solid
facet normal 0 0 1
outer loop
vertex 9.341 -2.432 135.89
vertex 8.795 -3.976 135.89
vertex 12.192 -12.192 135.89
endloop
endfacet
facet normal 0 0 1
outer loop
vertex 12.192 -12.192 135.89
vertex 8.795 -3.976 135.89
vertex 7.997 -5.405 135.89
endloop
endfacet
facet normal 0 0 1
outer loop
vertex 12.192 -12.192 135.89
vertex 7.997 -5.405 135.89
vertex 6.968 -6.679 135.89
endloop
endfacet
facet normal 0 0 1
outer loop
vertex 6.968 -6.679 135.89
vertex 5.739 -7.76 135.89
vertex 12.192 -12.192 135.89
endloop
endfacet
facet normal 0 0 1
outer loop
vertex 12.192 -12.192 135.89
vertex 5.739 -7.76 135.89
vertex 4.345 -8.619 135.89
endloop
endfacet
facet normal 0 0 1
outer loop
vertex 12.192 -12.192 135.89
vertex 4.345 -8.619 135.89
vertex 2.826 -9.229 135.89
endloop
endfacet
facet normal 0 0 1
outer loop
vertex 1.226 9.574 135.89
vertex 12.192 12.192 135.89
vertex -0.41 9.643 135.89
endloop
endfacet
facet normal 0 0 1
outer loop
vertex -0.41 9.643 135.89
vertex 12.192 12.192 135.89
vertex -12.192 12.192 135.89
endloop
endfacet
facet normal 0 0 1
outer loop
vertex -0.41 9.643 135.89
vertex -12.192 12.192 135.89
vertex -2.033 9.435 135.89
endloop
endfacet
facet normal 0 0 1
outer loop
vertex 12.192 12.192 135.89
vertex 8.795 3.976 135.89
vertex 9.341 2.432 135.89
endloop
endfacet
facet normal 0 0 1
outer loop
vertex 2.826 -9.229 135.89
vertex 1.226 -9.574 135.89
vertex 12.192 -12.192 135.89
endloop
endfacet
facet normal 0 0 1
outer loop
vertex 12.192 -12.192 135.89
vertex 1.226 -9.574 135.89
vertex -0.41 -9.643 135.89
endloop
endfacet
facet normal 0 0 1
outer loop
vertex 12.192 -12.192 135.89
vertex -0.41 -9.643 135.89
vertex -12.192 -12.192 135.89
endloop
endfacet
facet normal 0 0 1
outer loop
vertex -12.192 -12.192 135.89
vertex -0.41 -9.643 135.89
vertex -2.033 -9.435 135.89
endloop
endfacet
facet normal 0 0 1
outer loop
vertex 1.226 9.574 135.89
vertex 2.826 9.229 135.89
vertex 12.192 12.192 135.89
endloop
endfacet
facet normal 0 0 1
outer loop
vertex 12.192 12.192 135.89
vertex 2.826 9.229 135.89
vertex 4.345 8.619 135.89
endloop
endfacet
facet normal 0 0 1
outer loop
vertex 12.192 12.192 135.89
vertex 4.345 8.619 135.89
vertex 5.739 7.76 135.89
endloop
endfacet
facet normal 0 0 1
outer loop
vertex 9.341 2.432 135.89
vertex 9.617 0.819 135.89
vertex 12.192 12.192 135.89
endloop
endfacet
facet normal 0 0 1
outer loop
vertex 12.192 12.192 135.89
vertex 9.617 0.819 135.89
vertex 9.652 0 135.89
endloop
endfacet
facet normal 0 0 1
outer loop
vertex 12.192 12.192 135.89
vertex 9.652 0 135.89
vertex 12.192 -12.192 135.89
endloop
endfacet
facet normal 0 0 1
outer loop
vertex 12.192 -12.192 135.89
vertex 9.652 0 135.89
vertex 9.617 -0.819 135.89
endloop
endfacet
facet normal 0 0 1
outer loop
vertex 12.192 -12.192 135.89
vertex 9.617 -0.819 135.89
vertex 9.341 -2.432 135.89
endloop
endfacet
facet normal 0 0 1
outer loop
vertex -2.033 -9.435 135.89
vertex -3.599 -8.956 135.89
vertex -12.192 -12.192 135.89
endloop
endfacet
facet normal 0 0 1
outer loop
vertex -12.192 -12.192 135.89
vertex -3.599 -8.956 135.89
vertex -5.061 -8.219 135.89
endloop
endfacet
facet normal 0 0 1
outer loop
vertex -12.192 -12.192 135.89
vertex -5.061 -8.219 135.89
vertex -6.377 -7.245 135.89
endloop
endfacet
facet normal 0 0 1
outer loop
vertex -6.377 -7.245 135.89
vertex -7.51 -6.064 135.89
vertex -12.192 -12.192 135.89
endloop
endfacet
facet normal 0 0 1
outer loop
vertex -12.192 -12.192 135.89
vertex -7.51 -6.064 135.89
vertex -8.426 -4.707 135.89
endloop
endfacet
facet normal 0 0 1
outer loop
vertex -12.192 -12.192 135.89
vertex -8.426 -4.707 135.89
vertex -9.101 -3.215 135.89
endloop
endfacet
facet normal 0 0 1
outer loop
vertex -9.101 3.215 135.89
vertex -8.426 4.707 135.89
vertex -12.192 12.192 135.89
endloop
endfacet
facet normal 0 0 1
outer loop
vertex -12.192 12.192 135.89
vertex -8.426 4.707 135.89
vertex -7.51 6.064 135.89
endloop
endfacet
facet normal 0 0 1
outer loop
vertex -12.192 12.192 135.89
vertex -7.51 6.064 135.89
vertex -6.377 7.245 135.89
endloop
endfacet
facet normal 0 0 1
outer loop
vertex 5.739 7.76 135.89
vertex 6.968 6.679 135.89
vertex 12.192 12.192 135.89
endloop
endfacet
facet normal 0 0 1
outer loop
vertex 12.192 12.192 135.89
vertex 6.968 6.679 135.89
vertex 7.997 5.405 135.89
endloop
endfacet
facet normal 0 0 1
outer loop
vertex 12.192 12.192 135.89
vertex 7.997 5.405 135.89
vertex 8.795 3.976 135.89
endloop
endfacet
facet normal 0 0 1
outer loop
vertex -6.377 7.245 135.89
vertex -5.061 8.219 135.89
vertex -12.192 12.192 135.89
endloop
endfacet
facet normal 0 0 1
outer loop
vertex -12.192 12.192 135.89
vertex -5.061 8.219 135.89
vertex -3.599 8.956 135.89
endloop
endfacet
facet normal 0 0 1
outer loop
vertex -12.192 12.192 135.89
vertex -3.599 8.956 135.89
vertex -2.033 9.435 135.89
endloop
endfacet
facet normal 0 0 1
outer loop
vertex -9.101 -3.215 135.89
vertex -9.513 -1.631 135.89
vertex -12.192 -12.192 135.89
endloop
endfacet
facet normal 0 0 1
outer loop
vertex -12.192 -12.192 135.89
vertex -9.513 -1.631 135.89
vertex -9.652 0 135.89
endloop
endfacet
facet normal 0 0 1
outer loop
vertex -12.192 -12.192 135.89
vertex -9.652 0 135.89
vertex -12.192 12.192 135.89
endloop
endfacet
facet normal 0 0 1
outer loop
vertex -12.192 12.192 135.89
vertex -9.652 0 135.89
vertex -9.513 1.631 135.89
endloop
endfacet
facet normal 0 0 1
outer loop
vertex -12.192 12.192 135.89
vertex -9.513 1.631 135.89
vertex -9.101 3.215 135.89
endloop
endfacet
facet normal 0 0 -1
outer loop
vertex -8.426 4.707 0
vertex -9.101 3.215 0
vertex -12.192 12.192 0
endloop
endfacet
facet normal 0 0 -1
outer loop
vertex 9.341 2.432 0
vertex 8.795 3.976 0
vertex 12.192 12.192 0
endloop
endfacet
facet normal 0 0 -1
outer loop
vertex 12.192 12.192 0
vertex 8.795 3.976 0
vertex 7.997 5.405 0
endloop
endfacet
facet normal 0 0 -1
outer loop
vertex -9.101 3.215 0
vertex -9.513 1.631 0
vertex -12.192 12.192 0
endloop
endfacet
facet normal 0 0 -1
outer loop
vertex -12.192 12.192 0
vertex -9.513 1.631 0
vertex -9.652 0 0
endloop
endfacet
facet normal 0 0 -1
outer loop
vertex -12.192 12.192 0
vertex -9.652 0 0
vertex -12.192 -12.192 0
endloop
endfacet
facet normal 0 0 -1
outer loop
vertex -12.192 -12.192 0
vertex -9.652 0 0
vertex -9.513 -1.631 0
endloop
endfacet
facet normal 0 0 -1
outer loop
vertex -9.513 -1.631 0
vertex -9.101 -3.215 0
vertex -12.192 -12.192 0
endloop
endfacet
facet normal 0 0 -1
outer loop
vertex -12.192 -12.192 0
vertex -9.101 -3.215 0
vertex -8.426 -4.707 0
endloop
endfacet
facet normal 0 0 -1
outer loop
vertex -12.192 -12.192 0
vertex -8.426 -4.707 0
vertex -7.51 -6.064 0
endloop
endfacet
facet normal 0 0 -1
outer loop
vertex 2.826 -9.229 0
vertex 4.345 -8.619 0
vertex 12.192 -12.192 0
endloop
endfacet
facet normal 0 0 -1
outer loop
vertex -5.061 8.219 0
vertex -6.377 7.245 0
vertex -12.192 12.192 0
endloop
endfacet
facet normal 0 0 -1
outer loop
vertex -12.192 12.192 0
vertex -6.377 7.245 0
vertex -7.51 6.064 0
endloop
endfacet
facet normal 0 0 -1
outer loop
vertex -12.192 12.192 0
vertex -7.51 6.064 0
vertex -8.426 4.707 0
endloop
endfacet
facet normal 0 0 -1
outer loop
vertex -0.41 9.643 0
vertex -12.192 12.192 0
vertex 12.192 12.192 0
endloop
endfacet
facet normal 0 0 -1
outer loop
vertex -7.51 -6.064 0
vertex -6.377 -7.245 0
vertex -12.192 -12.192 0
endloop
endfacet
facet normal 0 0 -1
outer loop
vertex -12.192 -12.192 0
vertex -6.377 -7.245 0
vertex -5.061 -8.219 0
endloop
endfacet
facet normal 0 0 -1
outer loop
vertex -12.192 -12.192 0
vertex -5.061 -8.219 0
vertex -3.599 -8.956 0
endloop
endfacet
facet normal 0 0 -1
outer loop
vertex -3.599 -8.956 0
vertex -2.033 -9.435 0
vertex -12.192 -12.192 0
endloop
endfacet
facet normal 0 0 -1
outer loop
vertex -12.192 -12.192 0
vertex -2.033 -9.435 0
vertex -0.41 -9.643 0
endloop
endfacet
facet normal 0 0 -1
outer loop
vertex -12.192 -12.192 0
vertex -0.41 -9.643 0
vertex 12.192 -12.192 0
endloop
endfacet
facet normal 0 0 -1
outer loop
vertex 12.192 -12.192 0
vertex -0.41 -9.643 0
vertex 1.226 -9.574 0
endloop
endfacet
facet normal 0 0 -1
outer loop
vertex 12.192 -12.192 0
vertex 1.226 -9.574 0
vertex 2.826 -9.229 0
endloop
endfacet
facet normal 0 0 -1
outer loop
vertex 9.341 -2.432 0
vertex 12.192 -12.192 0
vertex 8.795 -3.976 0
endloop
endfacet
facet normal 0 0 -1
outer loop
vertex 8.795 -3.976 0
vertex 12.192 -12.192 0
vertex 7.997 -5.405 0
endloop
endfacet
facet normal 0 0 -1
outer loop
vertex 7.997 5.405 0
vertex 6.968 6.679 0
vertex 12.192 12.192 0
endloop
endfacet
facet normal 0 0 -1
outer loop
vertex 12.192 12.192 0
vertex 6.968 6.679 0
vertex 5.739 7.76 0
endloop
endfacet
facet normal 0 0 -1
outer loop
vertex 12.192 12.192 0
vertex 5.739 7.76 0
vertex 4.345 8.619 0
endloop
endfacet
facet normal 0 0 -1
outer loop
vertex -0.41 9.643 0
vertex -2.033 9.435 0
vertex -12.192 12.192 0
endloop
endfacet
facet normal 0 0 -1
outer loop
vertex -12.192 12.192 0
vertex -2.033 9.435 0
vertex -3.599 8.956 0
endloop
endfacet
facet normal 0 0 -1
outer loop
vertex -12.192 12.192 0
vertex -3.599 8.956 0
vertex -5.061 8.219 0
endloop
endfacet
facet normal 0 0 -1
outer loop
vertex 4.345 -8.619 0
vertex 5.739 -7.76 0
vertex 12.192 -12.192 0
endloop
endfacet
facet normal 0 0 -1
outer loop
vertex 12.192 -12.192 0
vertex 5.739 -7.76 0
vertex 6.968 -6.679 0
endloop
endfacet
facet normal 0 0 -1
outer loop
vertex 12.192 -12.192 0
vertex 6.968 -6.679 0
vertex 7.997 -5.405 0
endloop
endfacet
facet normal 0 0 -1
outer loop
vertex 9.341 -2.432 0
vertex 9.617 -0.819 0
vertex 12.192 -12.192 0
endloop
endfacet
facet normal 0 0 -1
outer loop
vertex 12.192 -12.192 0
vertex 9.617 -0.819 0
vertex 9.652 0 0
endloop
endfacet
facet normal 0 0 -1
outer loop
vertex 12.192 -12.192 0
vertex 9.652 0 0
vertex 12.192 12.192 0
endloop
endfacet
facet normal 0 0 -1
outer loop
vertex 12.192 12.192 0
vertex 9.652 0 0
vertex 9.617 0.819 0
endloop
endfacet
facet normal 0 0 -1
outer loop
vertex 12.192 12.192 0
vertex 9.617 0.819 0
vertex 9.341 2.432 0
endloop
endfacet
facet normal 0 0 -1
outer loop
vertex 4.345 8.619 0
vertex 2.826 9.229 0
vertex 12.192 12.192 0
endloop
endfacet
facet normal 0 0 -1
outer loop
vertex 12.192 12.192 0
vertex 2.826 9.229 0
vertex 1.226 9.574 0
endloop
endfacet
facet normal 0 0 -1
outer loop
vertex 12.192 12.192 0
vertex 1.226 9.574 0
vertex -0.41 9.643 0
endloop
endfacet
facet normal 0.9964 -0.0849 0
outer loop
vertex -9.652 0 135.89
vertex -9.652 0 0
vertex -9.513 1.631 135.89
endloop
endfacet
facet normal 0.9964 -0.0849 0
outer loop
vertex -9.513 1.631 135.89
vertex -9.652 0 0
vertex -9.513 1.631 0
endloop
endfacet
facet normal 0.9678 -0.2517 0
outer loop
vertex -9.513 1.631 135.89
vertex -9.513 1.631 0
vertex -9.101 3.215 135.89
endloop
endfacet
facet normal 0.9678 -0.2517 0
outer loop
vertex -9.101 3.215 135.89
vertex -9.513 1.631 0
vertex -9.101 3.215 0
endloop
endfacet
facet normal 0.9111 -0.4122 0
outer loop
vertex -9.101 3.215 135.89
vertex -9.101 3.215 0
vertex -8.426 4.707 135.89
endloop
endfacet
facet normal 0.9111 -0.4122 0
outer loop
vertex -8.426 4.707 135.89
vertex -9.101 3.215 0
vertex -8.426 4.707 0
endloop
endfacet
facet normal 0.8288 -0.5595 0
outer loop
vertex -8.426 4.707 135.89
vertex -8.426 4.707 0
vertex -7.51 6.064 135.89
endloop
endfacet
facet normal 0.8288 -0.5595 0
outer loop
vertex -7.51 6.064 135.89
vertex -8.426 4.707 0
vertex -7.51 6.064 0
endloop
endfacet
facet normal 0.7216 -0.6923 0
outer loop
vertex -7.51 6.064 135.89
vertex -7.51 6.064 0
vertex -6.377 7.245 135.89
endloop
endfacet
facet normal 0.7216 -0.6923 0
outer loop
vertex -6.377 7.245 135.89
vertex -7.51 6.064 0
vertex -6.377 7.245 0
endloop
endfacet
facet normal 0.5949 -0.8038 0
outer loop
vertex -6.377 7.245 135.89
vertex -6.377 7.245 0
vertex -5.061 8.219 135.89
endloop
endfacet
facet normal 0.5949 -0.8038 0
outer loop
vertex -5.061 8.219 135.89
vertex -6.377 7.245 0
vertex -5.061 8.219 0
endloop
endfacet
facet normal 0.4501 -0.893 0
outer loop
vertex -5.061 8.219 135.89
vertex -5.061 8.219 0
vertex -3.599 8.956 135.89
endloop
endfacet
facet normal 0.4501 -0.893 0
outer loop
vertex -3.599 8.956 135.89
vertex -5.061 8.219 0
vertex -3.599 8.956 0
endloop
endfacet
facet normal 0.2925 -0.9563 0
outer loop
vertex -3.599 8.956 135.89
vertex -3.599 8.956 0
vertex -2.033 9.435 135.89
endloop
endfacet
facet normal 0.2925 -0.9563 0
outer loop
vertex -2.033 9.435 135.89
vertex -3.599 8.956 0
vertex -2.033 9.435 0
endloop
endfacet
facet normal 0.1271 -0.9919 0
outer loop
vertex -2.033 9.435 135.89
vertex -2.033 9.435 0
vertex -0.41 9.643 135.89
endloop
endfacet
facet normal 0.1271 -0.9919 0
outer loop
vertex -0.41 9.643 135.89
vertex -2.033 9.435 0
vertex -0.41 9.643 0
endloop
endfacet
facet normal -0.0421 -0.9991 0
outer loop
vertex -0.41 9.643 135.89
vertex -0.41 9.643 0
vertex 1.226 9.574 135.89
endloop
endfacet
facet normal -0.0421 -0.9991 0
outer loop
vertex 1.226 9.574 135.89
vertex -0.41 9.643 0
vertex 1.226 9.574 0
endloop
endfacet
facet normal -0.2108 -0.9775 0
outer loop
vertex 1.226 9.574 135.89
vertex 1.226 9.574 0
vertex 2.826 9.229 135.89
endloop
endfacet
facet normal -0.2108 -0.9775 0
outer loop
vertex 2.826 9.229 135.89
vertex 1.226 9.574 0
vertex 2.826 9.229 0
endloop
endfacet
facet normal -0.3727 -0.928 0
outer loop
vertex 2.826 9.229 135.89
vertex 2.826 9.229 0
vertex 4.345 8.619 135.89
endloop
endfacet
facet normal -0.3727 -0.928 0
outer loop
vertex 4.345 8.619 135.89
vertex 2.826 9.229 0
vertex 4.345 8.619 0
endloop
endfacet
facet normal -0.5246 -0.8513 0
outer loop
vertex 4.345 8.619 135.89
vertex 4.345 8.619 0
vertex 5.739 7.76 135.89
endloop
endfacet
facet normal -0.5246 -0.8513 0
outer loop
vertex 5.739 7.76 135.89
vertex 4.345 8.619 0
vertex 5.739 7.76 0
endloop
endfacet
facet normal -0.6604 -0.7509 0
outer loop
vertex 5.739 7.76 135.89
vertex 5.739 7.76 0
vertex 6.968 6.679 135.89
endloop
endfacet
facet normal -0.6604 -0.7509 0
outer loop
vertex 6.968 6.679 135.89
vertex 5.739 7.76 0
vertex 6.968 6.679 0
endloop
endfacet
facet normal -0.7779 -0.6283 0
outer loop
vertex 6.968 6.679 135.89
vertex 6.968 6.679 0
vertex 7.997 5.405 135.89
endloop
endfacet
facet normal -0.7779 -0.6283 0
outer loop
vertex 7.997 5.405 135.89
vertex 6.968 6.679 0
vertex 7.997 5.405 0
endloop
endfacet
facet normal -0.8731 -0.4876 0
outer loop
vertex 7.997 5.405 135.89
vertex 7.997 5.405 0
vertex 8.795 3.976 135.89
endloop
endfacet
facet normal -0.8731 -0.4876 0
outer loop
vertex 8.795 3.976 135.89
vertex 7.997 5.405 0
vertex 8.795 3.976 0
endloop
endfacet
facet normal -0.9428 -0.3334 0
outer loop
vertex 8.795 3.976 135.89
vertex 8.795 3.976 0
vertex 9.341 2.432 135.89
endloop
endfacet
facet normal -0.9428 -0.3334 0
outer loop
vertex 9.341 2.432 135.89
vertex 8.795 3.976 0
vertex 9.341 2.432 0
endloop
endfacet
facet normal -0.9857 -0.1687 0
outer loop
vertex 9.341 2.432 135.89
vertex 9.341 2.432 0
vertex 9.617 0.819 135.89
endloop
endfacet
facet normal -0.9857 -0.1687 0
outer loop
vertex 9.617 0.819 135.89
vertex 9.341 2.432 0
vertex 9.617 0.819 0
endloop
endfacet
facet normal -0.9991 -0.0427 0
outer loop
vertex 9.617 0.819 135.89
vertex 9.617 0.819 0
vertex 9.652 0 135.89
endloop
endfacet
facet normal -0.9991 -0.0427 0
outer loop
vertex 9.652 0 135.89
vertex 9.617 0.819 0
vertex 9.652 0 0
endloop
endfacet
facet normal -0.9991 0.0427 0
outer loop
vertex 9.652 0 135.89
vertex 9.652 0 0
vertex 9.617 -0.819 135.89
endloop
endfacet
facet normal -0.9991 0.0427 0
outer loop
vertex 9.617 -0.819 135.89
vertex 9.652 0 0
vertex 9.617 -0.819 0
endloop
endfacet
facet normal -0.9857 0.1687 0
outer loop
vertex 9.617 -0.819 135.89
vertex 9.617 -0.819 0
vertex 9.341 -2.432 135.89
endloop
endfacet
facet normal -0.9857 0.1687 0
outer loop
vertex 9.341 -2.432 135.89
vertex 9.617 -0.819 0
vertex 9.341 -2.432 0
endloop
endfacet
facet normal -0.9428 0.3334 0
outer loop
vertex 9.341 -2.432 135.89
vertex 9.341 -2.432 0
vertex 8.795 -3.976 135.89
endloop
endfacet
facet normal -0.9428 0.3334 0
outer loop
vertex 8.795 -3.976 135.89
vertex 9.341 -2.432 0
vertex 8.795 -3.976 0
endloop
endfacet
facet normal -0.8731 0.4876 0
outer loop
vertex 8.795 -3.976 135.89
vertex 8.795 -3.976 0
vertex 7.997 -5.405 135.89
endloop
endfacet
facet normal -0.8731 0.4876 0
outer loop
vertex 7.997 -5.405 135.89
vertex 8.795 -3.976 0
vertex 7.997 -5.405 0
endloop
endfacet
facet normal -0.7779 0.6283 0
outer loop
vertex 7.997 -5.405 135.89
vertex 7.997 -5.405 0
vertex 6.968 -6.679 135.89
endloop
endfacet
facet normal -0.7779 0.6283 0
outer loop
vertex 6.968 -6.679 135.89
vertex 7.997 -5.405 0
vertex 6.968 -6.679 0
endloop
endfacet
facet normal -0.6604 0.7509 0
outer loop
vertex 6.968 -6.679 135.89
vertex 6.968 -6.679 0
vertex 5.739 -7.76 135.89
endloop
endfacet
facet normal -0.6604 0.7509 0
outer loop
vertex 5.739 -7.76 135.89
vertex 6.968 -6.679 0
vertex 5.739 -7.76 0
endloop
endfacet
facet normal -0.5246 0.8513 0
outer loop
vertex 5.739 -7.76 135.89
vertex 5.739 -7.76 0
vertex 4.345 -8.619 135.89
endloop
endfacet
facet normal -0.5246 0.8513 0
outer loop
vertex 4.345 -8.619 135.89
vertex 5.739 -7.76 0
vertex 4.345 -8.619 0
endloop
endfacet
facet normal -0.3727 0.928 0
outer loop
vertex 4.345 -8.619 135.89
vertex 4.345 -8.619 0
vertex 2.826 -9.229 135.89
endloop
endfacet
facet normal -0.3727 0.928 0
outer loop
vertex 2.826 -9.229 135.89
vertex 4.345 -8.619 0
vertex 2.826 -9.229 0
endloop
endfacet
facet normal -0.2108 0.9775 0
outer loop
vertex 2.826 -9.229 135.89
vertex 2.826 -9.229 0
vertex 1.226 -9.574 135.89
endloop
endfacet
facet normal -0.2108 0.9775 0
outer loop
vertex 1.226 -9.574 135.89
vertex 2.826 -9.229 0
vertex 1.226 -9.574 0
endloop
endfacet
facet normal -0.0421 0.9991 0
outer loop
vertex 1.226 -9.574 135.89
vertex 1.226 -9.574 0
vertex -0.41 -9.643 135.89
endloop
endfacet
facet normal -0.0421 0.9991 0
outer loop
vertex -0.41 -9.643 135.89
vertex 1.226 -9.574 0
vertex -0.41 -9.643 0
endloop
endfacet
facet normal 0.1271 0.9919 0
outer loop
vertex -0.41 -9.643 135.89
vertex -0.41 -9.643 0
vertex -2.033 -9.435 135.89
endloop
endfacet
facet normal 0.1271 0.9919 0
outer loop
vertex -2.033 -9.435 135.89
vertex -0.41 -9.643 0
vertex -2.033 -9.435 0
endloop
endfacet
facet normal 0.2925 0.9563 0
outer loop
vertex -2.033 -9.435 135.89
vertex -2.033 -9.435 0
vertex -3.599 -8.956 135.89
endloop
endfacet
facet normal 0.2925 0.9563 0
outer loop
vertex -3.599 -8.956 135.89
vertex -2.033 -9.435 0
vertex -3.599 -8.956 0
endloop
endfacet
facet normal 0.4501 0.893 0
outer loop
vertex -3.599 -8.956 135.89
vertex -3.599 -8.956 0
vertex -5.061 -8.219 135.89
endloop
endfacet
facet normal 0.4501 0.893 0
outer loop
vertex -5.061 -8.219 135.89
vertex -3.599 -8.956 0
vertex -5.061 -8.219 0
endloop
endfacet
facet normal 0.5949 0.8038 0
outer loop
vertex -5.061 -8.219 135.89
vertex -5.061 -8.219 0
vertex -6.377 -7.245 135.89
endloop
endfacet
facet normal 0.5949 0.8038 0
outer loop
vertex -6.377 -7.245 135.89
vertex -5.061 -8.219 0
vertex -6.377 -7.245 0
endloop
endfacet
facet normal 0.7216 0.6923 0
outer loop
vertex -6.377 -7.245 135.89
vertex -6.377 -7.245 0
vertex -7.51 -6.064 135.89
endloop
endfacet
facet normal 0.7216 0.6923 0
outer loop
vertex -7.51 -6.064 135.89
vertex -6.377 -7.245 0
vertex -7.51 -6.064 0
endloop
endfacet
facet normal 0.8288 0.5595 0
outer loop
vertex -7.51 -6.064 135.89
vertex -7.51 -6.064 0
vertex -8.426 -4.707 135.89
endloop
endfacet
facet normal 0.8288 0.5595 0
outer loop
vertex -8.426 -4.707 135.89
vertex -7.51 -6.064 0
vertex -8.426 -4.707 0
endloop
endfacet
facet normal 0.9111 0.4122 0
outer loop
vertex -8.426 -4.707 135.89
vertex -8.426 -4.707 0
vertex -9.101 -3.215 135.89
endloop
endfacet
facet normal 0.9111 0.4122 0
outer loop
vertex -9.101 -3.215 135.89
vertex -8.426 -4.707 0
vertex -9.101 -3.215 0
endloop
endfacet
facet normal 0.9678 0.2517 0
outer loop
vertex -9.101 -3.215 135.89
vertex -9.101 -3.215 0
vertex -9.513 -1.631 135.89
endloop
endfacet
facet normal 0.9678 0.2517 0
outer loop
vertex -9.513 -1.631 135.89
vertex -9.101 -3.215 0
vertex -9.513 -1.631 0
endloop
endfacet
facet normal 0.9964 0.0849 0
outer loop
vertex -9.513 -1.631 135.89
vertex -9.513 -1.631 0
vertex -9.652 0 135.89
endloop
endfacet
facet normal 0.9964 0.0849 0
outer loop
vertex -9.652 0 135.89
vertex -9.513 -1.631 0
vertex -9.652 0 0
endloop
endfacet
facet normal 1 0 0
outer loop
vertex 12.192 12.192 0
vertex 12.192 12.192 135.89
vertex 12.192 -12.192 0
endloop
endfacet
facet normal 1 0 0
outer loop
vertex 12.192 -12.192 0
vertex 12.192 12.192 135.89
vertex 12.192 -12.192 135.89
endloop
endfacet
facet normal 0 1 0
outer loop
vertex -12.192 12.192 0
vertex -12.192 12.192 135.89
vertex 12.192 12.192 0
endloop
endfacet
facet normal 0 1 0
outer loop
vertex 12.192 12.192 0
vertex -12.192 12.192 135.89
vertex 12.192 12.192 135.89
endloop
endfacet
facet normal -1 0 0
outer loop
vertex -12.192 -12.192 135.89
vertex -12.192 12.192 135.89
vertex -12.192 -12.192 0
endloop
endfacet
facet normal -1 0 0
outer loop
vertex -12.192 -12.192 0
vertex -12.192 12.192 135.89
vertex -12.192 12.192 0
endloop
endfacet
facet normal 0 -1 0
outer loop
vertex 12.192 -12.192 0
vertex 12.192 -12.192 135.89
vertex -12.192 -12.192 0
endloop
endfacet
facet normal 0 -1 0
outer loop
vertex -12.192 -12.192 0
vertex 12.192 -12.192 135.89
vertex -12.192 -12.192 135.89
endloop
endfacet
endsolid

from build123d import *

# Parameters (mm, degrees)
SKETCH1_R               = 12.192
SKETCH1_R_2             = 9.652
MAIN_INNER_TUBE_DEPTH   = 135.89
SKETCH2_W               = 24.384
SKETCH2_H               = 24.384
SKETCH2_R               = 9.652
RECTANGLE_OUTSIDE_DEPTH = 135.89


with BuildPart() as part:
    # Sketch1 → Main Inner Tube (new body)
    with BuildSketch(Plane.XY):
        Circle(SKETCH1_R)
        Circle(SKETCH1_R_2, mode=Mode.SUBTRACT)
    extrude(amount=MAIN_INNER_TUBE_DEPTH)

    # Sketch2 → Rectangle Outside (add, through all)
    with BuildSketch(Plane(origin=(0, 0, 0), x_dir=(-1, 0, 0), z_dir=(0, 0, -1))):
        Rectangle(SKETCH2_W, SKETCH2_H)
        with Locations(Location((0, 0, 0), (0, 0, 180))):
            Circle(SKETCH2_R, mode=Mode.SUBTRACT)
    extrude(amount=-RECTANGLE_OUTSIDE_DEPTH)


solid = part.part
